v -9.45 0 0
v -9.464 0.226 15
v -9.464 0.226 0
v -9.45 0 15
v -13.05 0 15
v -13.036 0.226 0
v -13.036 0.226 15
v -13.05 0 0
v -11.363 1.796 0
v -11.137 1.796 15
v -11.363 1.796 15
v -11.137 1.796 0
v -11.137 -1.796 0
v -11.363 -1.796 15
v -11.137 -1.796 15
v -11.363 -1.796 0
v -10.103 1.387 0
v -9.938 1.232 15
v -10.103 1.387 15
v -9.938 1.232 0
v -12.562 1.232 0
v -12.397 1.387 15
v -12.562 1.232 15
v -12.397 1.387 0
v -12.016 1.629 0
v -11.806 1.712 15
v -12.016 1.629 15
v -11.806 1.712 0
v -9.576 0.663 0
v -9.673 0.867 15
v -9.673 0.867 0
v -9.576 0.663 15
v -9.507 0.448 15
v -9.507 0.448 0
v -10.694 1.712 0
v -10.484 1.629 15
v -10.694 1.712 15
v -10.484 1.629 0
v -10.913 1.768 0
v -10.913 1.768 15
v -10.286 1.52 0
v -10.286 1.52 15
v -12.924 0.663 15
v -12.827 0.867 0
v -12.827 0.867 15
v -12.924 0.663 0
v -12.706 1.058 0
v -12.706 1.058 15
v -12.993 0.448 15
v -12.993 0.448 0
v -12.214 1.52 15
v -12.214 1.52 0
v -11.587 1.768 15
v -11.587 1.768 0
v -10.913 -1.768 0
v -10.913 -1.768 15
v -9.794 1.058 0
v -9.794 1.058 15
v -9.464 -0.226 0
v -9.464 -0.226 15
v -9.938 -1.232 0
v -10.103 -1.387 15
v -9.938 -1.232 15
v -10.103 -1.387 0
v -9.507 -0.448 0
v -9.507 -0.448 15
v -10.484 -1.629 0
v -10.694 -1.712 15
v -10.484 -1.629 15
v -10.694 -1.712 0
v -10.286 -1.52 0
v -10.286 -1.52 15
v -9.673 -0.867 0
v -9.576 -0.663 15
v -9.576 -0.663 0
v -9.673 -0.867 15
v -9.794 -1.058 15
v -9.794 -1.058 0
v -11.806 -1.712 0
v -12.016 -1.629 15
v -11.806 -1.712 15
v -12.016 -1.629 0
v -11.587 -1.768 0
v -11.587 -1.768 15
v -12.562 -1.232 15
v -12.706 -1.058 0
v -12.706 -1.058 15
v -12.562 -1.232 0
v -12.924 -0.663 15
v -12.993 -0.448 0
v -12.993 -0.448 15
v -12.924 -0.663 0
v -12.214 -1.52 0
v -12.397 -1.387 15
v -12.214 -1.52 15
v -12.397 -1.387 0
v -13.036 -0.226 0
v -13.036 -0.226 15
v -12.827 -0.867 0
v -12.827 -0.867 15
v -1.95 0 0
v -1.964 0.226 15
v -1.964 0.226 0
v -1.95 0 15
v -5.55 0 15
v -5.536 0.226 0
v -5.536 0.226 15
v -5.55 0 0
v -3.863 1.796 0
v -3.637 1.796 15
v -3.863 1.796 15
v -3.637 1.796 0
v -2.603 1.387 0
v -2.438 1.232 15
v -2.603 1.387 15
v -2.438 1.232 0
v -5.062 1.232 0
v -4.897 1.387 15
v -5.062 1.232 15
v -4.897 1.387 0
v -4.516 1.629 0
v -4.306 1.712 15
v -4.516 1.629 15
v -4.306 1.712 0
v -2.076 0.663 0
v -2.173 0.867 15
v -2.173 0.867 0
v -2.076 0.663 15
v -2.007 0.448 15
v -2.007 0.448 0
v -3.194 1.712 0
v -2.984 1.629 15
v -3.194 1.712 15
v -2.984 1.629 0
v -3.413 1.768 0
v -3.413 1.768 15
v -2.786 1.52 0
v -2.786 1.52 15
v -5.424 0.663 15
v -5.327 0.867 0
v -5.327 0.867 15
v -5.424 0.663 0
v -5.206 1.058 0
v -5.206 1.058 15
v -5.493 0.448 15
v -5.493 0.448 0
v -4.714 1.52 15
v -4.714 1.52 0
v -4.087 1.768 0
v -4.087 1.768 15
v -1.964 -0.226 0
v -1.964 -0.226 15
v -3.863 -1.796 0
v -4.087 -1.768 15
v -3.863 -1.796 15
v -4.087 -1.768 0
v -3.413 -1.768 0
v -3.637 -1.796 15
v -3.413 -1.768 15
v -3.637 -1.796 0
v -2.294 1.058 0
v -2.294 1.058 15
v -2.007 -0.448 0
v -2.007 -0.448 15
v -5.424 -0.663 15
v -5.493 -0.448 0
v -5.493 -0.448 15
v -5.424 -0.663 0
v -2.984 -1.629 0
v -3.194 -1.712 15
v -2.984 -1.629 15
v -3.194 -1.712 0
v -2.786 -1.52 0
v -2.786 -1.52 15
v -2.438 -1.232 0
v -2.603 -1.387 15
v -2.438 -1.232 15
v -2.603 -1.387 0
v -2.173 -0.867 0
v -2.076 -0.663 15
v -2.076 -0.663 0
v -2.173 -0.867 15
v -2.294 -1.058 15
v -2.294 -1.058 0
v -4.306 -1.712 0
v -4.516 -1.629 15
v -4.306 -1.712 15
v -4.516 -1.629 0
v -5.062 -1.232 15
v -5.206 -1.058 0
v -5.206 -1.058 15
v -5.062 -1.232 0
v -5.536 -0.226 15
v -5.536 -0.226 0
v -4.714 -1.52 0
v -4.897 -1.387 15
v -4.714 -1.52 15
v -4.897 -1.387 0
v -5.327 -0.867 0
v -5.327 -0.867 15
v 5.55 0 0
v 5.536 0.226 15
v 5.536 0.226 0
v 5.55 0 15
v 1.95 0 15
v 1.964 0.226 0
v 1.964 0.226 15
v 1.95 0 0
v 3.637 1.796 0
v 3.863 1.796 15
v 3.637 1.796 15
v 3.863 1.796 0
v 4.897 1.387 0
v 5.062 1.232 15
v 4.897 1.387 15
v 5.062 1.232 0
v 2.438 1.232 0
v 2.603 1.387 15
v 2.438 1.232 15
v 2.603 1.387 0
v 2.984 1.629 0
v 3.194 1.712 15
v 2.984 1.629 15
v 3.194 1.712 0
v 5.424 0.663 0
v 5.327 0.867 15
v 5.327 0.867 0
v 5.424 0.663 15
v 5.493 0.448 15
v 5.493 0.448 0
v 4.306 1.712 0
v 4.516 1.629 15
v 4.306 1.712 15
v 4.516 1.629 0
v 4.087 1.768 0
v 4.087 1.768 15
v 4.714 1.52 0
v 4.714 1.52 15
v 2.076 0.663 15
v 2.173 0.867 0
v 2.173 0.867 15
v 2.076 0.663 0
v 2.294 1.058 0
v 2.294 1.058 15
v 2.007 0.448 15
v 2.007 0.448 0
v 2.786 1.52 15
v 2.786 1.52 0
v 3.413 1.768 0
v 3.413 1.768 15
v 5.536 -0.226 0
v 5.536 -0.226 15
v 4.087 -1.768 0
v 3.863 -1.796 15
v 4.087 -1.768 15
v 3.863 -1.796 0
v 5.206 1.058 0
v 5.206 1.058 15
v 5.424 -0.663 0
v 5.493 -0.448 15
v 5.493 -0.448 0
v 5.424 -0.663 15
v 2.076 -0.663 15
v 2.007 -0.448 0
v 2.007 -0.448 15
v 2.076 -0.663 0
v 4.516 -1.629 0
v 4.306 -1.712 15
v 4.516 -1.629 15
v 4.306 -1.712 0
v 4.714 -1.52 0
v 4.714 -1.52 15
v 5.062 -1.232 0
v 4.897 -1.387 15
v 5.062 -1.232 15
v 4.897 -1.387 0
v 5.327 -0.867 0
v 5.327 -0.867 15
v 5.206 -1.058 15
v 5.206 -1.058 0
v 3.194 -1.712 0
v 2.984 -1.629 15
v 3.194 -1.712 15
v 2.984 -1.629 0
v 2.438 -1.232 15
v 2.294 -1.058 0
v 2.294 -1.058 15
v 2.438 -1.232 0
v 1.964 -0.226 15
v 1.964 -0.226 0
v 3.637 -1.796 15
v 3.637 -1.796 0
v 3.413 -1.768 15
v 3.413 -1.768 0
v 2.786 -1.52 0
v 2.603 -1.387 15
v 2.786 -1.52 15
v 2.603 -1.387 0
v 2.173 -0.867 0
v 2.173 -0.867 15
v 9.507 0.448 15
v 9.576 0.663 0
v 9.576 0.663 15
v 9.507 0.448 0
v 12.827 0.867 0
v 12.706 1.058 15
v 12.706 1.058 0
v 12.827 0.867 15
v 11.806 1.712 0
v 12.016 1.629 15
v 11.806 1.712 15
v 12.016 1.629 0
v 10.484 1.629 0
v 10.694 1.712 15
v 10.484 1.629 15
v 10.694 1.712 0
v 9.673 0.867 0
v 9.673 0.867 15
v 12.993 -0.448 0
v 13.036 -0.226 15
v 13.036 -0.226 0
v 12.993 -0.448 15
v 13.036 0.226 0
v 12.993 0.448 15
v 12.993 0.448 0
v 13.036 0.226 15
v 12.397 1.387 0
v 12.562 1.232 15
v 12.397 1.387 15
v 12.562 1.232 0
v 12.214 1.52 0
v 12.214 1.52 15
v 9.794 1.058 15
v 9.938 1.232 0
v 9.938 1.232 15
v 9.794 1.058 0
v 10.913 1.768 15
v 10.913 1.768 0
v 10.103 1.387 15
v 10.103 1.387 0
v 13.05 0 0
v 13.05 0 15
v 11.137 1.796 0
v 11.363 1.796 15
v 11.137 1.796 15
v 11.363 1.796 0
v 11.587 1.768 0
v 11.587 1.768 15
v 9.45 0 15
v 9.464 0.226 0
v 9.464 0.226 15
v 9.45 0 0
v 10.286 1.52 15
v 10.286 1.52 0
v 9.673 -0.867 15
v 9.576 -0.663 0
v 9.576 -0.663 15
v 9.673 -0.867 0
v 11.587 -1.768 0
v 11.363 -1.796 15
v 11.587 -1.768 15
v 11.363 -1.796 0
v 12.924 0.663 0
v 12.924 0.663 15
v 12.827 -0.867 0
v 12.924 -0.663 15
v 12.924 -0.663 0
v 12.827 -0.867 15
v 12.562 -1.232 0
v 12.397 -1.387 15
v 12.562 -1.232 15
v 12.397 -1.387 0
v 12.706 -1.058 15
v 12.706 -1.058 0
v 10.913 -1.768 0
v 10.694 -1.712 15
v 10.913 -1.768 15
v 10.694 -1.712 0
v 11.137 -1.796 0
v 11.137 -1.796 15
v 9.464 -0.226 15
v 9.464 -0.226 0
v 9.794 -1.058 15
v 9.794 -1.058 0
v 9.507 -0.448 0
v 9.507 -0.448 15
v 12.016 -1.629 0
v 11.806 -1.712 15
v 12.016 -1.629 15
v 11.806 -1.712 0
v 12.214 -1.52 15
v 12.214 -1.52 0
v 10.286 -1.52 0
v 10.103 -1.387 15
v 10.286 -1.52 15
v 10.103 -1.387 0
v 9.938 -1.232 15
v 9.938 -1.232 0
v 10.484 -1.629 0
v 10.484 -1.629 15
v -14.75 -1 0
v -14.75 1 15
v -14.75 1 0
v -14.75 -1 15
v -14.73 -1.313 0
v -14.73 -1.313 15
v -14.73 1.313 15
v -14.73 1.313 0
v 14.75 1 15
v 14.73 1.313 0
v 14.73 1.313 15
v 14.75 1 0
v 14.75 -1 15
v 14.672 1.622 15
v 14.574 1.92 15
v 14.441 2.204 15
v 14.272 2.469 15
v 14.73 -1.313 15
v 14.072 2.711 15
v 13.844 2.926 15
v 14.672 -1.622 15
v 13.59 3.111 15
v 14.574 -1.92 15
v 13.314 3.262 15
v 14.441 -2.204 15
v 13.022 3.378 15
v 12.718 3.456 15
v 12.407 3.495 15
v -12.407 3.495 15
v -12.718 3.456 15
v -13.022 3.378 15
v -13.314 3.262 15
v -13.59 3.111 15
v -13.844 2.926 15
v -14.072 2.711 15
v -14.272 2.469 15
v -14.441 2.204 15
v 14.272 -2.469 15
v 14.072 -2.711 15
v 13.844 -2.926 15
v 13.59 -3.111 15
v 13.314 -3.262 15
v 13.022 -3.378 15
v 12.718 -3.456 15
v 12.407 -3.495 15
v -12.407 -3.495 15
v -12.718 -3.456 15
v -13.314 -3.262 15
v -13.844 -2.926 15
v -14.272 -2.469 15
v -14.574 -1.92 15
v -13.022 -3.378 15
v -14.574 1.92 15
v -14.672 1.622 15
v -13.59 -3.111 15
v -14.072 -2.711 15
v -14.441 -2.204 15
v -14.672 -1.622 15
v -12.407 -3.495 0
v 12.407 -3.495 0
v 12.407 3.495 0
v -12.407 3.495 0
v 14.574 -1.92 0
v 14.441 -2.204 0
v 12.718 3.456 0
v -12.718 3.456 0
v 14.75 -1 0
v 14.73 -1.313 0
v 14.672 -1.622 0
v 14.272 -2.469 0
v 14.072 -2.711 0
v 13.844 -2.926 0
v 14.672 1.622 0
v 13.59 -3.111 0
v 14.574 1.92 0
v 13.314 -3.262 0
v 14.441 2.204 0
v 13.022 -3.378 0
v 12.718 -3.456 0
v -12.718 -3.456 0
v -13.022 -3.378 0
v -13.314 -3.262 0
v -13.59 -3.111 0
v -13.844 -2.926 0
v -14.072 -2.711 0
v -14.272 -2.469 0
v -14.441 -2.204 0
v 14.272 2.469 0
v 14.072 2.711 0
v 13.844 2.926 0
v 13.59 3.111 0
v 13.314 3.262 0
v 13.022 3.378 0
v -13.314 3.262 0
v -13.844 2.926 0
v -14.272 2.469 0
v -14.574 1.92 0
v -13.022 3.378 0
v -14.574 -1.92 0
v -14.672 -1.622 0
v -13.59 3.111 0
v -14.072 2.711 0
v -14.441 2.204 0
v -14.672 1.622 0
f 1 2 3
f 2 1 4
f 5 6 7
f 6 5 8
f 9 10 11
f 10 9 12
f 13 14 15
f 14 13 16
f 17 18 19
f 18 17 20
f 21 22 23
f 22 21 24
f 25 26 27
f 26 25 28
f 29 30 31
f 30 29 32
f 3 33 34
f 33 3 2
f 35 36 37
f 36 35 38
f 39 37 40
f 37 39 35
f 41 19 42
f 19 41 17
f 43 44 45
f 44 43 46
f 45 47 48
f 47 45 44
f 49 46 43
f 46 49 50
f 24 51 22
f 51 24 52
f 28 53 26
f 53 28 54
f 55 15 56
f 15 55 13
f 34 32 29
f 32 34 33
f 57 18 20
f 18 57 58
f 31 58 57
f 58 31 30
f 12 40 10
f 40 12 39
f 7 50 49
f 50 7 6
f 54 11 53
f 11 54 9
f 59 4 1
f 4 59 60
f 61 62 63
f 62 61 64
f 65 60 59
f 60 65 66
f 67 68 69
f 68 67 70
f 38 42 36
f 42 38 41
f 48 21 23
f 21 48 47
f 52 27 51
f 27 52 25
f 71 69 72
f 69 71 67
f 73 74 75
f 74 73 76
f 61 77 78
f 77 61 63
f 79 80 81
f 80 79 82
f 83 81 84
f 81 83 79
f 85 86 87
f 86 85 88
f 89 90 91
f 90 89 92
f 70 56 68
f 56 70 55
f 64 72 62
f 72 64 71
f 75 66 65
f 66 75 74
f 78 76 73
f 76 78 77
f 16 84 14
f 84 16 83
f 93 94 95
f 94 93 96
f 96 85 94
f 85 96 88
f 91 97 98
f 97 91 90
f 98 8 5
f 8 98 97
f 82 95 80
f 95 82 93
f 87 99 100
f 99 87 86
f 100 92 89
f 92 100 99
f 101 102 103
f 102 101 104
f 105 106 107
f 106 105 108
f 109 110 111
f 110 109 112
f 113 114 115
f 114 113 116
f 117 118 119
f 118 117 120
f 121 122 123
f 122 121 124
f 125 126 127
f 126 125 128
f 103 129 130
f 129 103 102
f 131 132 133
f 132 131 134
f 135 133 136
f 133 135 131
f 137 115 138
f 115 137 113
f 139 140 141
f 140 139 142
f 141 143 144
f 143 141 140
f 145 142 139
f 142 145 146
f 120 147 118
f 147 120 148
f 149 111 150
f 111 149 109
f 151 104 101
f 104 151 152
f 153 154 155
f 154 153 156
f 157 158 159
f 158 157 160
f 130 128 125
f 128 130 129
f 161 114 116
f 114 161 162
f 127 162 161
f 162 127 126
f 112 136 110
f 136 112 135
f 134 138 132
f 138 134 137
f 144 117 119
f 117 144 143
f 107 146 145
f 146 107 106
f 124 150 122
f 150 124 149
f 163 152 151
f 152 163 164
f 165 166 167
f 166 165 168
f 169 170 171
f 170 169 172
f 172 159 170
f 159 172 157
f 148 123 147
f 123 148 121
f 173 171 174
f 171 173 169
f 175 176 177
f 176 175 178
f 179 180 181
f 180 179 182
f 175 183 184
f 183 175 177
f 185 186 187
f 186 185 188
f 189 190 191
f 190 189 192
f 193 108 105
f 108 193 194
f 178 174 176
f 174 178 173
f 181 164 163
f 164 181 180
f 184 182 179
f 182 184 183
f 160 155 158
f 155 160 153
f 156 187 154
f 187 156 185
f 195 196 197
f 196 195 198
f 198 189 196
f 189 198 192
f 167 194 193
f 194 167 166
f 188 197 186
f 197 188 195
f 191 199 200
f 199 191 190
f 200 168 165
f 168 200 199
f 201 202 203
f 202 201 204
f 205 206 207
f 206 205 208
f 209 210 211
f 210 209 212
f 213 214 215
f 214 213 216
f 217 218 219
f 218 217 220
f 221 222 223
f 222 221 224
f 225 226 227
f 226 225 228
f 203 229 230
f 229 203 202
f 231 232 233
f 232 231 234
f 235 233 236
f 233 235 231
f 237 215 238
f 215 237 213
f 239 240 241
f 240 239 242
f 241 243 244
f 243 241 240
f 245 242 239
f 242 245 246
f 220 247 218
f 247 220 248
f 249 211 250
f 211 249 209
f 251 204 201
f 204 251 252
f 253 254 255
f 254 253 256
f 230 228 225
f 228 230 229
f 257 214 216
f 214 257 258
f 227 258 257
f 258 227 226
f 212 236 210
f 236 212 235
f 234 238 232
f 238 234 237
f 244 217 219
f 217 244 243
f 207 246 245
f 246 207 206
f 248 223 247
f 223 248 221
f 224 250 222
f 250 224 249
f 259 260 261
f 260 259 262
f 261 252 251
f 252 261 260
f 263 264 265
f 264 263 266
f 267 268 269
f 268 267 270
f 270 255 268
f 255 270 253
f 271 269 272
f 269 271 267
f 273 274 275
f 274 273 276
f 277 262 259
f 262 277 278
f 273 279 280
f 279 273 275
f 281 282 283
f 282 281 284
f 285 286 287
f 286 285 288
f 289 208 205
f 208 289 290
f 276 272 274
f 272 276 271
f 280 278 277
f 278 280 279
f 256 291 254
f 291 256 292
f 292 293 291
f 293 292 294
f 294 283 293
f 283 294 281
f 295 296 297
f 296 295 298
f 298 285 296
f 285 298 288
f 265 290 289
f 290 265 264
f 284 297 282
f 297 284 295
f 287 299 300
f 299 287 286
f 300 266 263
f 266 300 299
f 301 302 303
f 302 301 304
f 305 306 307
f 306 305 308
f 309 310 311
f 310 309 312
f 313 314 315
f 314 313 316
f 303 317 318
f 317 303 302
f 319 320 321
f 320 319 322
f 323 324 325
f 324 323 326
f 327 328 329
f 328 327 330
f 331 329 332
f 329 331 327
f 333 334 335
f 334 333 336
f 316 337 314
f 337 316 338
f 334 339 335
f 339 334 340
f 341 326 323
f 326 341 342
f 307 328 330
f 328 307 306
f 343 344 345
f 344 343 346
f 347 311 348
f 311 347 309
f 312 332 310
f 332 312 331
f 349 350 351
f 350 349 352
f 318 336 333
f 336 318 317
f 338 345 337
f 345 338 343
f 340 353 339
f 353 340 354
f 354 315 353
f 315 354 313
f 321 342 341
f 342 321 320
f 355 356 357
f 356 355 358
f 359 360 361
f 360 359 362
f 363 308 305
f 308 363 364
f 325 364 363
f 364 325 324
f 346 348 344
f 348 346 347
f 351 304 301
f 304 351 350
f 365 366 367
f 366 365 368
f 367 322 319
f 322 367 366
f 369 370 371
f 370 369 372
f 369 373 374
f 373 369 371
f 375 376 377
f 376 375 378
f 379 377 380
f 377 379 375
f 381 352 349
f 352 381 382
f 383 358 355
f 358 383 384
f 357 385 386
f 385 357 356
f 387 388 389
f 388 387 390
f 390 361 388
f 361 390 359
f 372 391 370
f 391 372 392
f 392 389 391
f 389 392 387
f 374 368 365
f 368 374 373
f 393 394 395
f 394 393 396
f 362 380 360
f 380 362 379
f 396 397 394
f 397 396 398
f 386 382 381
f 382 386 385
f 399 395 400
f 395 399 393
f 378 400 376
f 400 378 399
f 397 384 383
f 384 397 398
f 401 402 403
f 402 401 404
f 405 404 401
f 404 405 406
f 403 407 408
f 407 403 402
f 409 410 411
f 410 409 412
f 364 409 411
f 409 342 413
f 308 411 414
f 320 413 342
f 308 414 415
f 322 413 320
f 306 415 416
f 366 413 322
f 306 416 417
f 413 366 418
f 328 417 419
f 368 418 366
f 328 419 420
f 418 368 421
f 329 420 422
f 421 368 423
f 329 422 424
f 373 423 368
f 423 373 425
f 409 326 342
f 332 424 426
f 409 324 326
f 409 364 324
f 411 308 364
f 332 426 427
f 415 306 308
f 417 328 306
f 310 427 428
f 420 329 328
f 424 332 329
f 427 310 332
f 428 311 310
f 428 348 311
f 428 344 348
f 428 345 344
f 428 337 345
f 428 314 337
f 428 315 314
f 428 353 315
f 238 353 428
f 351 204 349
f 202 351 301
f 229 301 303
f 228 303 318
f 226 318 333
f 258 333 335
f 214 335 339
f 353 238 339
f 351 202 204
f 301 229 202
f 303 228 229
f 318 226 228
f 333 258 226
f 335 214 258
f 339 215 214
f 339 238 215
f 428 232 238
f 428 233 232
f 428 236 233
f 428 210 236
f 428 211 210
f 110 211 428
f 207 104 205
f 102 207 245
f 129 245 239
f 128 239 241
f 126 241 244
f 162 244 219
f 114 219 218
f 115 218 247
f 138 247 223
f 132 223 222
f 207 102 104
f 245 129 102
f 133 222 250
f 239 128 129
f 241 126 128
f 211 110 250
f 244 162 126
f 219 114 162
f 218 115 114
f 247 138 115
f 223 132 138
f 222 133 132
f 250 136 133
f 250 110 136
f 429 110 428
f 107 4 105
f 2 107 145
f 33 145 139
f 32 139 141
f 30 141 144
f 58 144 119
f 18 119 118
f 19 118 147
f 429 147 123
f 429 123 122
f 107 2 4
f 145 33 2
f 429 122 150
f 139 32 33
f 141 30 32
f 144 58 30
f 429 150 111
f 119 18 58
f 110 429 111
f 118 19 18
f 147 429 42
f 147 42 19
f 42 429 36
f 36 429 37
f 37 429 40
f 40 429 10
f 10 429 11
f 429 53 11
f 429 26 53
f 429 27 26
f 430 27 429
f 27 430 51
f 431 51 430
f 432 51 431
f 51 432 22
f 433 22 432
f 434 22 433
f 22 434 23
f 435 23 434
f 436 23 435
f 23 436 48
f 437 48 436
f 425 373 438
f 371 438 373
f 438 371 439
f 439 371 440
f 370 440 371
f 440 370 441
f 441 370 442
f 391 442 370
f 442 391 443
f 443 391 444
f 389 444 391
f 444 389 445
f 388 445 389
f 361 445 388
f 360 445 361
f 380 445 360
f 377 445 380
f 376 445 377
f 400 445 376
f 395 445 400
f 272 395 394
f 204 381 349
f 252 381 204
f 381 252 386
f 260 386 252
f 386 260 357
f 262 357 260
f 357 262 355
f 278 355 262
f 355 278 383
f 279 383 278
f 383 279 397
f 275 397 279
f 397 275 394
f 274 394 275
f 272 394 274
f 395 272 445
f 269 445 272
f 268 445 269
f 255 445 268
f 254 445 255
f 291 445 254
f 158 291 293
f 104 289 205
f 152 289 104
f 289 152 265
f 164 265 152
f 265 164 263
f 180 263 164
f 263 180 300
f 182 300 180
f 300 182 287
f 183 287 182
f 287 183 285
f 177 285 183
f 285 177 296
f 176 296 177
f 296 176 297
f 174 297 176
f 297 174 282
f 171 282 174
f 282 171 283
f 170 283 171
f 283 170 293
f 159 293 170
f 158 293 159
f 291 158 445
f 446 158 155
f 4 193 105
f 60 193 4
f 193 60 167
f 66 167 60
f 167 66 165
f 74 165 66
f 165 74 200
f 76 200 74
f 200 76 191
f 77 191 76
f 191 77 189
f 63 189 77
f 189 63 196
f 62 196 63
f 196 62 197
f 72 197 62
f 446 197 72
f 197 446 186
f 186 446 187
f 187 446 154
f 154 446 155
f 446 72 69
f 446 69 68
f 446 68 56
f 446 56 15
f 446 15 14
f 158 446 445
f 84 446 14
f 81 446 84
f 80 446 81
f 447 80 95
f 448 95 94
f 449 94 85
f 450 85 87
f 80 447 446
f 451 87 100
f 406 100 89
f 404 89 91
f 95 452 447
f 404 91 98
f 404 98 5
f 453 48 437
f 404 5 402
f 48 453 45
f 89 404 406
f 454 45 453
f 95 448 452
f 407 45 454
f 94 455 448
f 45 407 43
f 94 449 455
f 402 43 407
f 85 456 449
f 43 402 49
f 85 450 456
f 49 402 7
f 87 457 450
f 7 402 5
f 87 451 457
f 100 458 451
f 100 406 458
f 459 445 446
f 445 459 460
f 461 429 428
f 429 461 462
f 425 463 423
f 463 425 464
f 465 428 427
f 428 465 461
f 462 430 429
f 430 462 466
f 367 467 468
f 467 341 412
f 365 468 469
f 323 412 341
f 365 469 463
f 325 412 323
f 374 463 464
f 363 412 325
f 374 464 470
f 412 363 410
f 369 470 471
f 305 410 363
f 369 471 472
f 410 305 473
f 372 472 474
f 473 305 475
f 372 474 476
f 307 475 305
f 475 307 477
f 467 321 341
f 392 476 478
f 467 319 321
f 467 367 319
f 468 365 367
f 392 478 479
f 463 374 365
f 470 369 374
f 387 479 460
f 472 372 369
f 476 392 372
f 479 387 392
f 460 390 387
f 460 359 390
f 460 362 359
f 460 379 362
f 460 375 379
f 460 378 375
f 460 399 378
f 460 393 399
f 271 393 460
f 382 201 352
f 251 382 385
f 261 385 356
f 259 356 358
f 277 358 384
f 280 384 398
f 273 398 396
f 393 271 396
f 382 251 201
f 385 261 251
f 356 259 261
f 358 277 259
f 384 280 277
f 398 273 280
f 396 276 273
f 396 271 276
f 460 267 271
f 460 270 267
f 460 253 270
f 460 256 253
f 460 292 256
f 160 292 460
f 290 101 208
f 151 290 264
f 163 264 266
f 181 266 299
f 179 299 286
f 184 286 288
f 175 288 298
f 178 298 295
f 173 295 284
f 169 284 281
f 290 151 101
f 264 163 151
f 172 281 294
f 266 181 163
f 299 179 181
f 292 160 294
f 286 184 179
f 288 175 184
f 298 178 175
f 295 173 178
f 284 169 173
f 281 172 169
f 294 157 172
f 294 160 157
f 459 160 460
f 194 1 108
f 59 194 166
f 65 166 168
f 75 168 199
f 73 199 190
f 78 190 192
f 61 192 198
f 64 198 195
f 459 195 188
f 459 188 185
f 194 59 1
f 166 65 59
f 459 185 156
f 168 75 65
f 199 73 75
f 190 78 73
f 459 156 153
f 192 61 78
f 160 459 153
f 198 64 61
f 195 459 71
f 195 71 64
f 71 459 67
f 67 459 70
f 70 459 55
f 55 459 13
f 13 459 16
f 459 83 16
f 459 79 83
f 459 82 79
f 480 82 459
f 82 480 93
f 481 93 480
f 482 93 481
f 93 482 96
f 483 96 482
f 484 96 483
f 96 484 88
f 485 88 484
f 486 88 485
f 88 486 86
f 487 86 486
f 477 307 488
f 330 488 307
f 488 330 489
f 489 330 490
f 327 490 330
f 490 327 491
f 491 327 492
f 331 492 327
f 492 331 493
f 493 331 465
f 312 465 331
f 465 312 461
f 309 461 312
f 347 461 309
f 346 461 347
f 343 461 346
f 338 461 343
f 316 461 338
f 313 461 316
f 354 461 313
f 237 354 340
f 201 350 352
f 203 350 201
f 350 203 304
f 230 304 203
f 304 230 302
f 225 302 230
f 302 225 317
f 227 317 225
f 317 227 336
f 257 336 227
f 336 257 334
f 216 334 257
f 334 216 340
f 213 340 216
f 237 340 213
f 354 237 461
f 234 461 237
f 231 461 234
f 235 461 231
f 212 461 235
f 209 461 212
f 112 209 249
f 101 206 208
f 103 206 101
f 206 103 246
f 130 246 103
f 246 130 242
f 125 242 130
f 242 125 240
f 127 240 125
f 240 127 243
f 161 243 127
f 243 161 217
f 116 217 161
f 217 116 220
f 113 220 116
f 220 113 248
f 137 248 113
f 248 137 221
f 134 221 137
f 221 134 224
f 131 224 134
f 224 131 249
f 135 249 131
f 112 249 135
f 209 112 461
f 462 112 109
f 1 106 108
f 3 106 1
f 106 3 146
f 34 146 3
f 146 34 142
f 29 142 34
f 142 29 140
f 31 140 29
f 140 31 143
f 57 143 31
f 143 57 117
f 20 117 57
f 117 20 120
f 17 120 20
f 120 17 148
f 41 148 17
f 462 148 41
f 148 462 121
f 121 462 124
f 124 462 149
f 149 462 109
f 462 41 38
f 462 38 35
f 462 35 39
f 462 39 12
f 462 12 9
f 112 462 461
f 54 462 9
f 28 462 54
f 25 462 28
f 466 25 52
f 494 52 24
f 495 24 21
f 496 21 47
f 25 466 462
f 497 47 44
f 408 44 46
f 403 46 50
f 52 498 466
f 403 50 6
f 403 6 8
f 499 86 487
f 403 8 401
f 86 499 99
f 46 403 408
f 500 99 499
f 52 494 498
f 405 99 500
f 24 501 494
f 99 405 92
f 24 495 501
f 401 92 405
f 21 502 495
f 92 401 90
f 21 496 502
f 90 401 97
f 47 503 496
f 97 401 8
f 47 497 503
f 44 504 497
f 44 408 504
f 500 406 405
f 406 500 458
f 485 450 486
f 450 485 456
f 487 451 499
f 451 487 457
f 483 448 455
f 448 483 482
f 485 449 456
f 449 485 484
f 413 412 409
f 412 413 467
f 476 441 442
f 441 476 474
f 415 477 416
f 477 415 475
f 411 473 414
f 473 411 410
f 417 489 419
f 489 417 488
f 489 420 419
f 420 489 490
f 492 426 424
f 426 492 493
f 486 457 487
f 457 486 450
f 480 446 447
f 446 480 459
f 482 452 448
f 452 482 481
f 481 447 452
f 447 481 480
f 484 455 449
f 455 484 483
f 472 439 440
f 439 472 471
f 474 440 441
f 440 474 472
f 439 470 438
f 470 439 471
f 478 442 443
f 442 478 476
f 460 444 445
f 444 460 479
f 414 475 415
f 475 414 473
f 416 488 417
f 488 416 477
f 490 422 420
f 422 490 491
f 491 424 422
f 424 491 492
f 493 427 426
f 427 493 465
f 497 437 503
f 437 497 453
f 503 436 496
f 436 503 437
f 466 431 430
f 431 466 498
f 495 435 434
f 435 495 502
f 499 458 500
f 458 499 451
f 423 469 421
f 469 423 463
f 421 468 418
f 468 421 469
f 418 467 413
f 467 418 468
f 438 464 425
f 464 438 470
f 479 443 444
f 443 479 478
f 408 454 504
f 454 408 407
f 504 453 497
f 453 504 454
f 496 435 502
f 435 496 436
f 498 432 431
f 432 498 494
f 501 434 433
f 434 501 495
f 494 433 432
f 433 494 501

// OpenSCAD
$fn = 50;


difference() {
	union() {
		translate(v = [0, 0, 0]) {
			rotate(a = [0, 0, 0]) {
				hull() {
					translate(v = [-12.2500000000, 1.0000000000, 0]) {
						rotate(a = [0, 0, 0]) {
							translate(v = [0, 0, 0]) {
								rotate(a = [0, 0, 0]) {
									cylinder(h = 15, r = 2.5000000000);
								}
							}
						}
					}
					translate(v = [12.2500000000, 1.0000000000, 0]) {
						rotate(a = [0, 0, 0]) {
							translate(v = [0, 0, 0]) {
								rotate(a = [0, 0, 0]) {
									cylinder(h = 15, r = 2.5000000000);
								}
							}
						}
					}
					translate(v = [-12.2500000000, -1.0000000000, 0]) {
						rotate(a = [0, 0, 0]) {
							translate(v = [0, 0, 0]) {
								rotate(a = [0, 0, 0]) {
									cylinder(h = 15, r = 2.5000000000);
								}
							}
						}
					}
					translate(v = [12.2500000000, -1.0000000000, 0]) {
						rotate(a = [0, 0, 0]) {
							translate(v = [0, 0, 0]) {
								rotate(a = [0, 0, 0]) {
									cylinder(h = 15, r = 2.5000000000);
								}
							}
						}
					}
				}
			}
		}
	}
	union() {
		translate(v = [-11.2500000000, 0.0000000000, 0]) {
			rotate(a = [0, 0, 0]) {
				translate(v = [0, 0, -50]) {
					rotate(a = [0, 0, 0]) {
						cylinder(h = 100, r = 1.8000000000);
					}
				}
			}
		}
		translate(v = [-3.7500000000, 0.0000000000, 0]) {
			rotate(a = [0, 0, 0]) {
				translate(v = [0, 0, -50]) {
					rotate(a = [0, 0, 0]) {
						cylinder(h = 100, r = 1.8000000000);
					}
				}
			}
		}
		translate(v = [3.7500000000, 0.0000000000, 0]) {
			rotate(a = [0, 0, 0]) {
				translate(v = [0, 0, -50]) {
					rotate(a = [0, 0, 0]) {
						cylinder(h = 100, r = 1.8000000000);
					}
				}
			}
		}
		translate(v = [11.2500000000, 0.0000000000, 0]) {
			rotate(a = [0, 0, 0]) {
				translate(v = [0, 0, -50]) {
					rotate(a = [0, 0, 0]) {
						cylinder(h = 100, r = 1.8000000000);
					}
				}
			}
		}
	}
}
